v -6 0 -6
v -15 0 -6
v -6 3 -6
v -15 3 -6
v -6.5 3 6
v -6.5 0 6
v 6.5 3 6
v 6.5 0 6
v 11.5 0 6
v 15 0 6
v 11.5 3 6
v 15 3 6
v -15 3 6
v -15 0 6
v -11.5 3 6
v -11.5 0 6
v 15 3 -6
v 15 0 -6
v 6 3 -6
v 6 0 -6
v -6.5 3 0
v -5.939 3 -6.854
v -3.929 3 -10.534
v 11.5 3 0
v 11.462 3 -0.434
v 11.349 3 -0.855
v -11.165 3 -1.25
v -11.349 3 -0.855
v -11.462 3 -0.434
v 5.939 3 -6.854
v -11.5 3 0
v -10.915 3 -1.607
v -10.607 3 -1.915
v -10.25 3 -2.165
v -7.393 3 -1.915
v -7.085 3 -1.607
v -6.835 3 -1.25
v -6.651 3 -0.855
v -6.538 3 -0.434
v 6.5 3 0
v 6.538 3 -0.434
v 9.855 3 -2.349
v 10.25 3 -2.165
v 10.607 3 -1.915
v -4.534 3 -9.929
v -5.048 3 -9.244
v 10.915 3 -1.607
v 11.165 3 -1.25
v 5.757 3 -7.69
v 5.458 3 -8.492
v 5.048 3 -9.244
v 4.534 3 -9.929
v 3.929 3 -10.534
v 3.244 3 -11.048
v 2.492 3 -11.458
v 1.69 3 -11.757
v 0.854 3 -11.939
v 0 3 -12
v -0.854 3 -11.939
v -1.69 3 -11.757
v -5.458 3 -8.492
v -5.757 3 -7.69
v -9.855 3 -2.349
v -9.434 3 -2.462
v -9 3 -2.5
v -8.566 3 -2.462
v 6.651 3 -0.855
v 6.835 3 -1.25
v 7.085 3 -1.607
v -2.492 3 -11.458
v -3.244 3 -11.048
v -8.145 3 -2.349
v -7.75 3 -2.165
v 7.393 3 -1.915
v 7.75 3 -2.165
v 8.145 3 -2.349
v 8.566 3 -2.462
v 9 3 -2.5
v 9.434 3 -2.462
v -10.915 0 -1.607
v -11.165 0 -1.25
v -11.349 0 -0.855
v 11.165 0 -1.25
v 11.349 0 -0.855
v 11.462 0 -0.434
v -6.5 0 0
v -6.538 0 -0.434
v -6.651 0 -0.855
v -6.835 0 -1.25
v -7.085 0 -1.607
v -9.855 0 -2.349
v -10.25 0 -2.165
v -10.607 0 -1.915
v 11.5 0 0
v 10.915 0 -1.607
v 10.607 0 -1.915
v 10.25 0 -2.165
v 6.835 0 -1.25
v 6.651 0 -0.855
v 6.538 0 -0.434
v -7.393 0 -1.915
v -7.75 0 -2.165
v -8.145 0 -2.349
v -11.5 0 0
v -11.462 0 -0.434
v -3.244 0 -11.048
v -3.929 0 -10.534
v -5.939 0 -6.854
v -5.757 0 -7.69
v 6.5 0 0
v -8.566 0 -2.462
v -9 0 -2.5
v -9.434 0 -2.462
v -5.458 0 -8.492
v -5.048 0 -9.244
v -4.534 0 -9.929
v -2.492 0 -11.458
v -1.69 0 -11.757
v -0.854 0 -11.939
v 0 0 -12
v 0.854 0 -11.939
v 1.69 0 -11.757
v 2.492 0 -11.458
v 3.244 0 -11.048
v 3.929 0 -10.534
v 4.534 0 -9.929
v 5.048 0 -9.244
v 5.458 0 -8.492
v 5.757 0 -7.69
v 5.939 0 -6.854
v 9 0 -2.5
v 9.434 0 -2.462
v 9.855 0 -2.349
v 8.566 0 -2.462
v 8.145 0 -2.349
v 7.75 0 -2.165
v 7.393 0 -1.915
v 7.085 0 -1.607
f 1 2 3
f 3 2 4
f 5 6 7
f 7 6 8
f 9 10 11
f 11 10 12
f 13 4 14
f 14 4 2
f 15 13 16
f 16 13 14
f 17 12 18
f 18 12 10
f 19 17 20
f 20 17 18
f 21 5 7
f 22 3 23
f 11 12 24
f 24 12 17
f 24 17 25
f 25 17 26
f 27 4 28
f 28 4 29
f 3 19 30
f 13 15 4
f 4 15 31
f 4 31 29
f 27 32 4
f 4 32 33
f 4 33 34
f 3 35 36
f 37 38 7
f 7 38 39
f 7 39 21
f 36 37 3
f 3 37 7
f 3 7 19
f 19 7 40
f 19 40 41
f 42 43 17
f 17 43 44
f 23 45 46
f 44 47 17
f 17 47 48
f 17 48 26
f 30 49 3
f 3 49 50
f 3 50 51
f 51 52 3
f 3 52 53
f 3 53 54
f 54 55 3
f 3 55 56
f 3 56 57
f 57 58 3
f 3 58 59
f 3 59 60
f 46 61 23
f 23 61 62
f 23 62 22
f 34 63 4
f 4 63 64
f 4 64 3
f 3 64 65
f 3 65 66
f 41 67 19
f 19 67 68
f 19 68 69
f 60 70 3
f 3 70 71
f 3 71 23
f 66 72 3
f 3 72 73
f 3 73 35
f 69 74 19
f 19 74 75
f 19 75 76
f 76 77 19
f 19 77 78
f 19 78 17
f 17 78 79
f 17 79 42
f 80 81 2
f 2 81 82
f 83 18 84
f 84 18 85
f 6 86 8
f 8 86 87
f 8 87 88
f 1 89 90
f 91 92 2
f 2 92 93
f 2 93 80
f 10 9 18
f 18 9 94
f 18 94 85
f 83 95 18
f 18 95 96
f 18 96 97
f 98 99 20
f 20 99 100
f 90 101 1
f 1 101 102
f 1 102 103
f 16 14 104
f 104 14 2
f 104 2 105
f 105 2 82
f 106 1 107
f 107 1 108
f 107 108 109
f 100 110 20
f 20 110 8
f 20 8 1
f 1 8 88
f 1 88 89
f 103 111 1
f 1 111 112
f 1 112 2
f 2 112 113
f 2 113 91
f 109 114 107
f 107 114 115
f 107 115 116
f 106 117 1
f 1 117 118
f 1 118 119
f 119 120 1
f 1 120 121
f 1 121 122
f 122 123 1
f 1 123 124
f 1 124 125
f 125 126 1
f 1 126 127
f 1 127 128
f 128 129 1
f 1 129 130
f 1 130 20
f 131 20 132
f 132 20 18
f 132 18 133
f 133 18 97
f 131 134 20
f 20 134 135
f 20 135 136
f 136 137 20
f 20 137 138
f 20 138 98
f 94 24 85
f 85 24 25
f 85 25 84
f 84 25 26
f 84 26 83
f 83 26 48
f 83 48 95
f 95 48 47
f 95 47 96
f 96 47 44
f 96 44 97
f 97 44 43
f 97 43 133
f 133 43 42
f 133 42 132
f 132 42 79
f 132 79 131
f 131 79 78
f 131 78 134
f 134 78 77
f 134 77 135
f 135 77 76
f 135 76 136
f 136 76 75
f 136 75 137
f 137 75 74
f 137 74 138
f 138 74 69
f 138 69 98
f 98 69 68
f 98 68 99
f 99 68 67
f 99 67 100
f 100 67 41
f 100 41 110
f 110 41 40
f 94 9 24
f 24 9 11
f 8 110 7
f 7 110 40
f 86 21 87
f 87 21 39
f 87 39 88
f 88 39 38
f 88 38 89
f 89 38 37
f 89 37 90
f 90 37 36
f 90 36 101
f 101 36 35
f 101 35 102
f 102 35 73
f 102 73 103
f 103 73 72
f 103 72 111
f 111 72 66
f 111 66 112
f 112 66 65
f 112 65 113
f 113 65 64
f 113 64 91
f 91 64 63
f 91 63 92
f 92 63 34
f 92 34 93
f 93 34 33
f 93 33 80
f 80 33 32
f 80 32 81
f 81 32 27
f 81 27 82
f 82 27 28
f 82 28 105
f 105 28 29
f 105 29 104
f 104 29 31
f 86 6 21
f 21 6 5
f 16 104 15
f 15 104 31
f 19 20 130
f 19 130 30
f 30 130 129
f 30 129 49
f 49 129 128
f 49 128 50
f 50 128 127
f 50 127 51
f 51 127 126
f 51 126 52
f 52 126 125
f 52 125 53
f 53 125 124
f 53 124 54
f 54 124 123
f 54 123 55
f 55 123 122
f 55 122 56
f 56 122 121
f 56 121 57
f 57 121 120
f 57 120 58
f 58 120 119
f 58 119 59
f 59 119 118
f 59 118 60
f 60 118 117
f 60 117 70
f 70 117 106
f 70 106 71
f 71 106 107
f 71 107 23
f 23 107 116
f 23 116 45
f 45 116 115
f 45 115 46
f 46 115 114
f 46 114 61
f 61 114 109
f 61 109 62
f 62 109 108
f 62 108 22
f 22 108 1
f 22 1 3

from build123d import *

# Parameters (mm, degrees)
SKETCH1_W           = 30
SKETCH1_H           = 12
BOSS_EXTRUDE1_DEPTH = 3
SKETCH2_R           = 1.5
CUT_EXTRUDE1_DEPTH  = 4
CUT_EXTRUDE2_DEPTH  = 4
BOSS_EXTRUDE2_DEPTH = 3


with BuildPart() as part:
    # Sketch1 → Boss-Extrude1 (new body)
    with BuildSketch(Plane(origin=(0, 0, 0), x_dir=(1, 0, 0), z_dir=(0, 1, 0))):
        Rectangle(SKETCH1_W, SKETCH1_H)
    extrude(amount=BOSS_EXTRUDE1_DEPTH)

    # Sketch2 → Cut-Extrude1 (cut, through all)
    with BuildSketch(Plane(origin=(0, 3, 0), x_dir=(1, 0, 0), z_dir=(0, 1, 0))):
        with Locations((-9, 0)):
            Circle(SKETCH2_R)
        with Locations((9, 0)):
            Circle(SKETCH2_R)
    extrude(amount=-CUT_EXTRUDE1_DEPTH, mode=Mode.SUBTRACT)

    # Sketch3 → Cut-Extrude2 (cut, through all)
    with BuildSketch(Plane(origin=(0, 3, 0), x_dir=(1, 0, 0), z_dir=(0, 1, 0))):
        with BuildLine():
            Line((-6.5, 0), (-6.5, -6))
            ThreePointArc((-6.5, -6), (-9, -8.5), (-11.5, -6))
            Line((-11.5, -6), (-11.5, 0))
            ThreePointArc((-11.5, 0), (-9, 2.5), (-6.5, 0))
        make_face()
        with BuildLine():
            Line((11.5, 0), (11.5, -6))
            ThreePointArc((11.5, -6), (9, -8.5), (6.5, -6))
            Line((6.5, -6), (6.5, 0))
            ThreePointArc((6.5, 0), (9, 2.5), (11.5, 0))
        make_face()
    extrude(amount=-CUT_EXTRUDE2_DEPTH, mode=Mode.SUBTRACT)

    # Sketch4 → Boss-Extrude2 (add)
    with BuildSketch(Plane.XZ):
        with BuildLine():
            Line((-6, -6), (-6, 0))
            ThreePointArc((-6, 0), (0, 6), (6, 0))
            Line((6, 0), (6, -6))
            ThreePointArc((6, -6), (0, -12), (-6, -6))
        make_face()
    extrude(amount=-BOSS_EXTRUDE2_DEPTH)


solid = part.part
